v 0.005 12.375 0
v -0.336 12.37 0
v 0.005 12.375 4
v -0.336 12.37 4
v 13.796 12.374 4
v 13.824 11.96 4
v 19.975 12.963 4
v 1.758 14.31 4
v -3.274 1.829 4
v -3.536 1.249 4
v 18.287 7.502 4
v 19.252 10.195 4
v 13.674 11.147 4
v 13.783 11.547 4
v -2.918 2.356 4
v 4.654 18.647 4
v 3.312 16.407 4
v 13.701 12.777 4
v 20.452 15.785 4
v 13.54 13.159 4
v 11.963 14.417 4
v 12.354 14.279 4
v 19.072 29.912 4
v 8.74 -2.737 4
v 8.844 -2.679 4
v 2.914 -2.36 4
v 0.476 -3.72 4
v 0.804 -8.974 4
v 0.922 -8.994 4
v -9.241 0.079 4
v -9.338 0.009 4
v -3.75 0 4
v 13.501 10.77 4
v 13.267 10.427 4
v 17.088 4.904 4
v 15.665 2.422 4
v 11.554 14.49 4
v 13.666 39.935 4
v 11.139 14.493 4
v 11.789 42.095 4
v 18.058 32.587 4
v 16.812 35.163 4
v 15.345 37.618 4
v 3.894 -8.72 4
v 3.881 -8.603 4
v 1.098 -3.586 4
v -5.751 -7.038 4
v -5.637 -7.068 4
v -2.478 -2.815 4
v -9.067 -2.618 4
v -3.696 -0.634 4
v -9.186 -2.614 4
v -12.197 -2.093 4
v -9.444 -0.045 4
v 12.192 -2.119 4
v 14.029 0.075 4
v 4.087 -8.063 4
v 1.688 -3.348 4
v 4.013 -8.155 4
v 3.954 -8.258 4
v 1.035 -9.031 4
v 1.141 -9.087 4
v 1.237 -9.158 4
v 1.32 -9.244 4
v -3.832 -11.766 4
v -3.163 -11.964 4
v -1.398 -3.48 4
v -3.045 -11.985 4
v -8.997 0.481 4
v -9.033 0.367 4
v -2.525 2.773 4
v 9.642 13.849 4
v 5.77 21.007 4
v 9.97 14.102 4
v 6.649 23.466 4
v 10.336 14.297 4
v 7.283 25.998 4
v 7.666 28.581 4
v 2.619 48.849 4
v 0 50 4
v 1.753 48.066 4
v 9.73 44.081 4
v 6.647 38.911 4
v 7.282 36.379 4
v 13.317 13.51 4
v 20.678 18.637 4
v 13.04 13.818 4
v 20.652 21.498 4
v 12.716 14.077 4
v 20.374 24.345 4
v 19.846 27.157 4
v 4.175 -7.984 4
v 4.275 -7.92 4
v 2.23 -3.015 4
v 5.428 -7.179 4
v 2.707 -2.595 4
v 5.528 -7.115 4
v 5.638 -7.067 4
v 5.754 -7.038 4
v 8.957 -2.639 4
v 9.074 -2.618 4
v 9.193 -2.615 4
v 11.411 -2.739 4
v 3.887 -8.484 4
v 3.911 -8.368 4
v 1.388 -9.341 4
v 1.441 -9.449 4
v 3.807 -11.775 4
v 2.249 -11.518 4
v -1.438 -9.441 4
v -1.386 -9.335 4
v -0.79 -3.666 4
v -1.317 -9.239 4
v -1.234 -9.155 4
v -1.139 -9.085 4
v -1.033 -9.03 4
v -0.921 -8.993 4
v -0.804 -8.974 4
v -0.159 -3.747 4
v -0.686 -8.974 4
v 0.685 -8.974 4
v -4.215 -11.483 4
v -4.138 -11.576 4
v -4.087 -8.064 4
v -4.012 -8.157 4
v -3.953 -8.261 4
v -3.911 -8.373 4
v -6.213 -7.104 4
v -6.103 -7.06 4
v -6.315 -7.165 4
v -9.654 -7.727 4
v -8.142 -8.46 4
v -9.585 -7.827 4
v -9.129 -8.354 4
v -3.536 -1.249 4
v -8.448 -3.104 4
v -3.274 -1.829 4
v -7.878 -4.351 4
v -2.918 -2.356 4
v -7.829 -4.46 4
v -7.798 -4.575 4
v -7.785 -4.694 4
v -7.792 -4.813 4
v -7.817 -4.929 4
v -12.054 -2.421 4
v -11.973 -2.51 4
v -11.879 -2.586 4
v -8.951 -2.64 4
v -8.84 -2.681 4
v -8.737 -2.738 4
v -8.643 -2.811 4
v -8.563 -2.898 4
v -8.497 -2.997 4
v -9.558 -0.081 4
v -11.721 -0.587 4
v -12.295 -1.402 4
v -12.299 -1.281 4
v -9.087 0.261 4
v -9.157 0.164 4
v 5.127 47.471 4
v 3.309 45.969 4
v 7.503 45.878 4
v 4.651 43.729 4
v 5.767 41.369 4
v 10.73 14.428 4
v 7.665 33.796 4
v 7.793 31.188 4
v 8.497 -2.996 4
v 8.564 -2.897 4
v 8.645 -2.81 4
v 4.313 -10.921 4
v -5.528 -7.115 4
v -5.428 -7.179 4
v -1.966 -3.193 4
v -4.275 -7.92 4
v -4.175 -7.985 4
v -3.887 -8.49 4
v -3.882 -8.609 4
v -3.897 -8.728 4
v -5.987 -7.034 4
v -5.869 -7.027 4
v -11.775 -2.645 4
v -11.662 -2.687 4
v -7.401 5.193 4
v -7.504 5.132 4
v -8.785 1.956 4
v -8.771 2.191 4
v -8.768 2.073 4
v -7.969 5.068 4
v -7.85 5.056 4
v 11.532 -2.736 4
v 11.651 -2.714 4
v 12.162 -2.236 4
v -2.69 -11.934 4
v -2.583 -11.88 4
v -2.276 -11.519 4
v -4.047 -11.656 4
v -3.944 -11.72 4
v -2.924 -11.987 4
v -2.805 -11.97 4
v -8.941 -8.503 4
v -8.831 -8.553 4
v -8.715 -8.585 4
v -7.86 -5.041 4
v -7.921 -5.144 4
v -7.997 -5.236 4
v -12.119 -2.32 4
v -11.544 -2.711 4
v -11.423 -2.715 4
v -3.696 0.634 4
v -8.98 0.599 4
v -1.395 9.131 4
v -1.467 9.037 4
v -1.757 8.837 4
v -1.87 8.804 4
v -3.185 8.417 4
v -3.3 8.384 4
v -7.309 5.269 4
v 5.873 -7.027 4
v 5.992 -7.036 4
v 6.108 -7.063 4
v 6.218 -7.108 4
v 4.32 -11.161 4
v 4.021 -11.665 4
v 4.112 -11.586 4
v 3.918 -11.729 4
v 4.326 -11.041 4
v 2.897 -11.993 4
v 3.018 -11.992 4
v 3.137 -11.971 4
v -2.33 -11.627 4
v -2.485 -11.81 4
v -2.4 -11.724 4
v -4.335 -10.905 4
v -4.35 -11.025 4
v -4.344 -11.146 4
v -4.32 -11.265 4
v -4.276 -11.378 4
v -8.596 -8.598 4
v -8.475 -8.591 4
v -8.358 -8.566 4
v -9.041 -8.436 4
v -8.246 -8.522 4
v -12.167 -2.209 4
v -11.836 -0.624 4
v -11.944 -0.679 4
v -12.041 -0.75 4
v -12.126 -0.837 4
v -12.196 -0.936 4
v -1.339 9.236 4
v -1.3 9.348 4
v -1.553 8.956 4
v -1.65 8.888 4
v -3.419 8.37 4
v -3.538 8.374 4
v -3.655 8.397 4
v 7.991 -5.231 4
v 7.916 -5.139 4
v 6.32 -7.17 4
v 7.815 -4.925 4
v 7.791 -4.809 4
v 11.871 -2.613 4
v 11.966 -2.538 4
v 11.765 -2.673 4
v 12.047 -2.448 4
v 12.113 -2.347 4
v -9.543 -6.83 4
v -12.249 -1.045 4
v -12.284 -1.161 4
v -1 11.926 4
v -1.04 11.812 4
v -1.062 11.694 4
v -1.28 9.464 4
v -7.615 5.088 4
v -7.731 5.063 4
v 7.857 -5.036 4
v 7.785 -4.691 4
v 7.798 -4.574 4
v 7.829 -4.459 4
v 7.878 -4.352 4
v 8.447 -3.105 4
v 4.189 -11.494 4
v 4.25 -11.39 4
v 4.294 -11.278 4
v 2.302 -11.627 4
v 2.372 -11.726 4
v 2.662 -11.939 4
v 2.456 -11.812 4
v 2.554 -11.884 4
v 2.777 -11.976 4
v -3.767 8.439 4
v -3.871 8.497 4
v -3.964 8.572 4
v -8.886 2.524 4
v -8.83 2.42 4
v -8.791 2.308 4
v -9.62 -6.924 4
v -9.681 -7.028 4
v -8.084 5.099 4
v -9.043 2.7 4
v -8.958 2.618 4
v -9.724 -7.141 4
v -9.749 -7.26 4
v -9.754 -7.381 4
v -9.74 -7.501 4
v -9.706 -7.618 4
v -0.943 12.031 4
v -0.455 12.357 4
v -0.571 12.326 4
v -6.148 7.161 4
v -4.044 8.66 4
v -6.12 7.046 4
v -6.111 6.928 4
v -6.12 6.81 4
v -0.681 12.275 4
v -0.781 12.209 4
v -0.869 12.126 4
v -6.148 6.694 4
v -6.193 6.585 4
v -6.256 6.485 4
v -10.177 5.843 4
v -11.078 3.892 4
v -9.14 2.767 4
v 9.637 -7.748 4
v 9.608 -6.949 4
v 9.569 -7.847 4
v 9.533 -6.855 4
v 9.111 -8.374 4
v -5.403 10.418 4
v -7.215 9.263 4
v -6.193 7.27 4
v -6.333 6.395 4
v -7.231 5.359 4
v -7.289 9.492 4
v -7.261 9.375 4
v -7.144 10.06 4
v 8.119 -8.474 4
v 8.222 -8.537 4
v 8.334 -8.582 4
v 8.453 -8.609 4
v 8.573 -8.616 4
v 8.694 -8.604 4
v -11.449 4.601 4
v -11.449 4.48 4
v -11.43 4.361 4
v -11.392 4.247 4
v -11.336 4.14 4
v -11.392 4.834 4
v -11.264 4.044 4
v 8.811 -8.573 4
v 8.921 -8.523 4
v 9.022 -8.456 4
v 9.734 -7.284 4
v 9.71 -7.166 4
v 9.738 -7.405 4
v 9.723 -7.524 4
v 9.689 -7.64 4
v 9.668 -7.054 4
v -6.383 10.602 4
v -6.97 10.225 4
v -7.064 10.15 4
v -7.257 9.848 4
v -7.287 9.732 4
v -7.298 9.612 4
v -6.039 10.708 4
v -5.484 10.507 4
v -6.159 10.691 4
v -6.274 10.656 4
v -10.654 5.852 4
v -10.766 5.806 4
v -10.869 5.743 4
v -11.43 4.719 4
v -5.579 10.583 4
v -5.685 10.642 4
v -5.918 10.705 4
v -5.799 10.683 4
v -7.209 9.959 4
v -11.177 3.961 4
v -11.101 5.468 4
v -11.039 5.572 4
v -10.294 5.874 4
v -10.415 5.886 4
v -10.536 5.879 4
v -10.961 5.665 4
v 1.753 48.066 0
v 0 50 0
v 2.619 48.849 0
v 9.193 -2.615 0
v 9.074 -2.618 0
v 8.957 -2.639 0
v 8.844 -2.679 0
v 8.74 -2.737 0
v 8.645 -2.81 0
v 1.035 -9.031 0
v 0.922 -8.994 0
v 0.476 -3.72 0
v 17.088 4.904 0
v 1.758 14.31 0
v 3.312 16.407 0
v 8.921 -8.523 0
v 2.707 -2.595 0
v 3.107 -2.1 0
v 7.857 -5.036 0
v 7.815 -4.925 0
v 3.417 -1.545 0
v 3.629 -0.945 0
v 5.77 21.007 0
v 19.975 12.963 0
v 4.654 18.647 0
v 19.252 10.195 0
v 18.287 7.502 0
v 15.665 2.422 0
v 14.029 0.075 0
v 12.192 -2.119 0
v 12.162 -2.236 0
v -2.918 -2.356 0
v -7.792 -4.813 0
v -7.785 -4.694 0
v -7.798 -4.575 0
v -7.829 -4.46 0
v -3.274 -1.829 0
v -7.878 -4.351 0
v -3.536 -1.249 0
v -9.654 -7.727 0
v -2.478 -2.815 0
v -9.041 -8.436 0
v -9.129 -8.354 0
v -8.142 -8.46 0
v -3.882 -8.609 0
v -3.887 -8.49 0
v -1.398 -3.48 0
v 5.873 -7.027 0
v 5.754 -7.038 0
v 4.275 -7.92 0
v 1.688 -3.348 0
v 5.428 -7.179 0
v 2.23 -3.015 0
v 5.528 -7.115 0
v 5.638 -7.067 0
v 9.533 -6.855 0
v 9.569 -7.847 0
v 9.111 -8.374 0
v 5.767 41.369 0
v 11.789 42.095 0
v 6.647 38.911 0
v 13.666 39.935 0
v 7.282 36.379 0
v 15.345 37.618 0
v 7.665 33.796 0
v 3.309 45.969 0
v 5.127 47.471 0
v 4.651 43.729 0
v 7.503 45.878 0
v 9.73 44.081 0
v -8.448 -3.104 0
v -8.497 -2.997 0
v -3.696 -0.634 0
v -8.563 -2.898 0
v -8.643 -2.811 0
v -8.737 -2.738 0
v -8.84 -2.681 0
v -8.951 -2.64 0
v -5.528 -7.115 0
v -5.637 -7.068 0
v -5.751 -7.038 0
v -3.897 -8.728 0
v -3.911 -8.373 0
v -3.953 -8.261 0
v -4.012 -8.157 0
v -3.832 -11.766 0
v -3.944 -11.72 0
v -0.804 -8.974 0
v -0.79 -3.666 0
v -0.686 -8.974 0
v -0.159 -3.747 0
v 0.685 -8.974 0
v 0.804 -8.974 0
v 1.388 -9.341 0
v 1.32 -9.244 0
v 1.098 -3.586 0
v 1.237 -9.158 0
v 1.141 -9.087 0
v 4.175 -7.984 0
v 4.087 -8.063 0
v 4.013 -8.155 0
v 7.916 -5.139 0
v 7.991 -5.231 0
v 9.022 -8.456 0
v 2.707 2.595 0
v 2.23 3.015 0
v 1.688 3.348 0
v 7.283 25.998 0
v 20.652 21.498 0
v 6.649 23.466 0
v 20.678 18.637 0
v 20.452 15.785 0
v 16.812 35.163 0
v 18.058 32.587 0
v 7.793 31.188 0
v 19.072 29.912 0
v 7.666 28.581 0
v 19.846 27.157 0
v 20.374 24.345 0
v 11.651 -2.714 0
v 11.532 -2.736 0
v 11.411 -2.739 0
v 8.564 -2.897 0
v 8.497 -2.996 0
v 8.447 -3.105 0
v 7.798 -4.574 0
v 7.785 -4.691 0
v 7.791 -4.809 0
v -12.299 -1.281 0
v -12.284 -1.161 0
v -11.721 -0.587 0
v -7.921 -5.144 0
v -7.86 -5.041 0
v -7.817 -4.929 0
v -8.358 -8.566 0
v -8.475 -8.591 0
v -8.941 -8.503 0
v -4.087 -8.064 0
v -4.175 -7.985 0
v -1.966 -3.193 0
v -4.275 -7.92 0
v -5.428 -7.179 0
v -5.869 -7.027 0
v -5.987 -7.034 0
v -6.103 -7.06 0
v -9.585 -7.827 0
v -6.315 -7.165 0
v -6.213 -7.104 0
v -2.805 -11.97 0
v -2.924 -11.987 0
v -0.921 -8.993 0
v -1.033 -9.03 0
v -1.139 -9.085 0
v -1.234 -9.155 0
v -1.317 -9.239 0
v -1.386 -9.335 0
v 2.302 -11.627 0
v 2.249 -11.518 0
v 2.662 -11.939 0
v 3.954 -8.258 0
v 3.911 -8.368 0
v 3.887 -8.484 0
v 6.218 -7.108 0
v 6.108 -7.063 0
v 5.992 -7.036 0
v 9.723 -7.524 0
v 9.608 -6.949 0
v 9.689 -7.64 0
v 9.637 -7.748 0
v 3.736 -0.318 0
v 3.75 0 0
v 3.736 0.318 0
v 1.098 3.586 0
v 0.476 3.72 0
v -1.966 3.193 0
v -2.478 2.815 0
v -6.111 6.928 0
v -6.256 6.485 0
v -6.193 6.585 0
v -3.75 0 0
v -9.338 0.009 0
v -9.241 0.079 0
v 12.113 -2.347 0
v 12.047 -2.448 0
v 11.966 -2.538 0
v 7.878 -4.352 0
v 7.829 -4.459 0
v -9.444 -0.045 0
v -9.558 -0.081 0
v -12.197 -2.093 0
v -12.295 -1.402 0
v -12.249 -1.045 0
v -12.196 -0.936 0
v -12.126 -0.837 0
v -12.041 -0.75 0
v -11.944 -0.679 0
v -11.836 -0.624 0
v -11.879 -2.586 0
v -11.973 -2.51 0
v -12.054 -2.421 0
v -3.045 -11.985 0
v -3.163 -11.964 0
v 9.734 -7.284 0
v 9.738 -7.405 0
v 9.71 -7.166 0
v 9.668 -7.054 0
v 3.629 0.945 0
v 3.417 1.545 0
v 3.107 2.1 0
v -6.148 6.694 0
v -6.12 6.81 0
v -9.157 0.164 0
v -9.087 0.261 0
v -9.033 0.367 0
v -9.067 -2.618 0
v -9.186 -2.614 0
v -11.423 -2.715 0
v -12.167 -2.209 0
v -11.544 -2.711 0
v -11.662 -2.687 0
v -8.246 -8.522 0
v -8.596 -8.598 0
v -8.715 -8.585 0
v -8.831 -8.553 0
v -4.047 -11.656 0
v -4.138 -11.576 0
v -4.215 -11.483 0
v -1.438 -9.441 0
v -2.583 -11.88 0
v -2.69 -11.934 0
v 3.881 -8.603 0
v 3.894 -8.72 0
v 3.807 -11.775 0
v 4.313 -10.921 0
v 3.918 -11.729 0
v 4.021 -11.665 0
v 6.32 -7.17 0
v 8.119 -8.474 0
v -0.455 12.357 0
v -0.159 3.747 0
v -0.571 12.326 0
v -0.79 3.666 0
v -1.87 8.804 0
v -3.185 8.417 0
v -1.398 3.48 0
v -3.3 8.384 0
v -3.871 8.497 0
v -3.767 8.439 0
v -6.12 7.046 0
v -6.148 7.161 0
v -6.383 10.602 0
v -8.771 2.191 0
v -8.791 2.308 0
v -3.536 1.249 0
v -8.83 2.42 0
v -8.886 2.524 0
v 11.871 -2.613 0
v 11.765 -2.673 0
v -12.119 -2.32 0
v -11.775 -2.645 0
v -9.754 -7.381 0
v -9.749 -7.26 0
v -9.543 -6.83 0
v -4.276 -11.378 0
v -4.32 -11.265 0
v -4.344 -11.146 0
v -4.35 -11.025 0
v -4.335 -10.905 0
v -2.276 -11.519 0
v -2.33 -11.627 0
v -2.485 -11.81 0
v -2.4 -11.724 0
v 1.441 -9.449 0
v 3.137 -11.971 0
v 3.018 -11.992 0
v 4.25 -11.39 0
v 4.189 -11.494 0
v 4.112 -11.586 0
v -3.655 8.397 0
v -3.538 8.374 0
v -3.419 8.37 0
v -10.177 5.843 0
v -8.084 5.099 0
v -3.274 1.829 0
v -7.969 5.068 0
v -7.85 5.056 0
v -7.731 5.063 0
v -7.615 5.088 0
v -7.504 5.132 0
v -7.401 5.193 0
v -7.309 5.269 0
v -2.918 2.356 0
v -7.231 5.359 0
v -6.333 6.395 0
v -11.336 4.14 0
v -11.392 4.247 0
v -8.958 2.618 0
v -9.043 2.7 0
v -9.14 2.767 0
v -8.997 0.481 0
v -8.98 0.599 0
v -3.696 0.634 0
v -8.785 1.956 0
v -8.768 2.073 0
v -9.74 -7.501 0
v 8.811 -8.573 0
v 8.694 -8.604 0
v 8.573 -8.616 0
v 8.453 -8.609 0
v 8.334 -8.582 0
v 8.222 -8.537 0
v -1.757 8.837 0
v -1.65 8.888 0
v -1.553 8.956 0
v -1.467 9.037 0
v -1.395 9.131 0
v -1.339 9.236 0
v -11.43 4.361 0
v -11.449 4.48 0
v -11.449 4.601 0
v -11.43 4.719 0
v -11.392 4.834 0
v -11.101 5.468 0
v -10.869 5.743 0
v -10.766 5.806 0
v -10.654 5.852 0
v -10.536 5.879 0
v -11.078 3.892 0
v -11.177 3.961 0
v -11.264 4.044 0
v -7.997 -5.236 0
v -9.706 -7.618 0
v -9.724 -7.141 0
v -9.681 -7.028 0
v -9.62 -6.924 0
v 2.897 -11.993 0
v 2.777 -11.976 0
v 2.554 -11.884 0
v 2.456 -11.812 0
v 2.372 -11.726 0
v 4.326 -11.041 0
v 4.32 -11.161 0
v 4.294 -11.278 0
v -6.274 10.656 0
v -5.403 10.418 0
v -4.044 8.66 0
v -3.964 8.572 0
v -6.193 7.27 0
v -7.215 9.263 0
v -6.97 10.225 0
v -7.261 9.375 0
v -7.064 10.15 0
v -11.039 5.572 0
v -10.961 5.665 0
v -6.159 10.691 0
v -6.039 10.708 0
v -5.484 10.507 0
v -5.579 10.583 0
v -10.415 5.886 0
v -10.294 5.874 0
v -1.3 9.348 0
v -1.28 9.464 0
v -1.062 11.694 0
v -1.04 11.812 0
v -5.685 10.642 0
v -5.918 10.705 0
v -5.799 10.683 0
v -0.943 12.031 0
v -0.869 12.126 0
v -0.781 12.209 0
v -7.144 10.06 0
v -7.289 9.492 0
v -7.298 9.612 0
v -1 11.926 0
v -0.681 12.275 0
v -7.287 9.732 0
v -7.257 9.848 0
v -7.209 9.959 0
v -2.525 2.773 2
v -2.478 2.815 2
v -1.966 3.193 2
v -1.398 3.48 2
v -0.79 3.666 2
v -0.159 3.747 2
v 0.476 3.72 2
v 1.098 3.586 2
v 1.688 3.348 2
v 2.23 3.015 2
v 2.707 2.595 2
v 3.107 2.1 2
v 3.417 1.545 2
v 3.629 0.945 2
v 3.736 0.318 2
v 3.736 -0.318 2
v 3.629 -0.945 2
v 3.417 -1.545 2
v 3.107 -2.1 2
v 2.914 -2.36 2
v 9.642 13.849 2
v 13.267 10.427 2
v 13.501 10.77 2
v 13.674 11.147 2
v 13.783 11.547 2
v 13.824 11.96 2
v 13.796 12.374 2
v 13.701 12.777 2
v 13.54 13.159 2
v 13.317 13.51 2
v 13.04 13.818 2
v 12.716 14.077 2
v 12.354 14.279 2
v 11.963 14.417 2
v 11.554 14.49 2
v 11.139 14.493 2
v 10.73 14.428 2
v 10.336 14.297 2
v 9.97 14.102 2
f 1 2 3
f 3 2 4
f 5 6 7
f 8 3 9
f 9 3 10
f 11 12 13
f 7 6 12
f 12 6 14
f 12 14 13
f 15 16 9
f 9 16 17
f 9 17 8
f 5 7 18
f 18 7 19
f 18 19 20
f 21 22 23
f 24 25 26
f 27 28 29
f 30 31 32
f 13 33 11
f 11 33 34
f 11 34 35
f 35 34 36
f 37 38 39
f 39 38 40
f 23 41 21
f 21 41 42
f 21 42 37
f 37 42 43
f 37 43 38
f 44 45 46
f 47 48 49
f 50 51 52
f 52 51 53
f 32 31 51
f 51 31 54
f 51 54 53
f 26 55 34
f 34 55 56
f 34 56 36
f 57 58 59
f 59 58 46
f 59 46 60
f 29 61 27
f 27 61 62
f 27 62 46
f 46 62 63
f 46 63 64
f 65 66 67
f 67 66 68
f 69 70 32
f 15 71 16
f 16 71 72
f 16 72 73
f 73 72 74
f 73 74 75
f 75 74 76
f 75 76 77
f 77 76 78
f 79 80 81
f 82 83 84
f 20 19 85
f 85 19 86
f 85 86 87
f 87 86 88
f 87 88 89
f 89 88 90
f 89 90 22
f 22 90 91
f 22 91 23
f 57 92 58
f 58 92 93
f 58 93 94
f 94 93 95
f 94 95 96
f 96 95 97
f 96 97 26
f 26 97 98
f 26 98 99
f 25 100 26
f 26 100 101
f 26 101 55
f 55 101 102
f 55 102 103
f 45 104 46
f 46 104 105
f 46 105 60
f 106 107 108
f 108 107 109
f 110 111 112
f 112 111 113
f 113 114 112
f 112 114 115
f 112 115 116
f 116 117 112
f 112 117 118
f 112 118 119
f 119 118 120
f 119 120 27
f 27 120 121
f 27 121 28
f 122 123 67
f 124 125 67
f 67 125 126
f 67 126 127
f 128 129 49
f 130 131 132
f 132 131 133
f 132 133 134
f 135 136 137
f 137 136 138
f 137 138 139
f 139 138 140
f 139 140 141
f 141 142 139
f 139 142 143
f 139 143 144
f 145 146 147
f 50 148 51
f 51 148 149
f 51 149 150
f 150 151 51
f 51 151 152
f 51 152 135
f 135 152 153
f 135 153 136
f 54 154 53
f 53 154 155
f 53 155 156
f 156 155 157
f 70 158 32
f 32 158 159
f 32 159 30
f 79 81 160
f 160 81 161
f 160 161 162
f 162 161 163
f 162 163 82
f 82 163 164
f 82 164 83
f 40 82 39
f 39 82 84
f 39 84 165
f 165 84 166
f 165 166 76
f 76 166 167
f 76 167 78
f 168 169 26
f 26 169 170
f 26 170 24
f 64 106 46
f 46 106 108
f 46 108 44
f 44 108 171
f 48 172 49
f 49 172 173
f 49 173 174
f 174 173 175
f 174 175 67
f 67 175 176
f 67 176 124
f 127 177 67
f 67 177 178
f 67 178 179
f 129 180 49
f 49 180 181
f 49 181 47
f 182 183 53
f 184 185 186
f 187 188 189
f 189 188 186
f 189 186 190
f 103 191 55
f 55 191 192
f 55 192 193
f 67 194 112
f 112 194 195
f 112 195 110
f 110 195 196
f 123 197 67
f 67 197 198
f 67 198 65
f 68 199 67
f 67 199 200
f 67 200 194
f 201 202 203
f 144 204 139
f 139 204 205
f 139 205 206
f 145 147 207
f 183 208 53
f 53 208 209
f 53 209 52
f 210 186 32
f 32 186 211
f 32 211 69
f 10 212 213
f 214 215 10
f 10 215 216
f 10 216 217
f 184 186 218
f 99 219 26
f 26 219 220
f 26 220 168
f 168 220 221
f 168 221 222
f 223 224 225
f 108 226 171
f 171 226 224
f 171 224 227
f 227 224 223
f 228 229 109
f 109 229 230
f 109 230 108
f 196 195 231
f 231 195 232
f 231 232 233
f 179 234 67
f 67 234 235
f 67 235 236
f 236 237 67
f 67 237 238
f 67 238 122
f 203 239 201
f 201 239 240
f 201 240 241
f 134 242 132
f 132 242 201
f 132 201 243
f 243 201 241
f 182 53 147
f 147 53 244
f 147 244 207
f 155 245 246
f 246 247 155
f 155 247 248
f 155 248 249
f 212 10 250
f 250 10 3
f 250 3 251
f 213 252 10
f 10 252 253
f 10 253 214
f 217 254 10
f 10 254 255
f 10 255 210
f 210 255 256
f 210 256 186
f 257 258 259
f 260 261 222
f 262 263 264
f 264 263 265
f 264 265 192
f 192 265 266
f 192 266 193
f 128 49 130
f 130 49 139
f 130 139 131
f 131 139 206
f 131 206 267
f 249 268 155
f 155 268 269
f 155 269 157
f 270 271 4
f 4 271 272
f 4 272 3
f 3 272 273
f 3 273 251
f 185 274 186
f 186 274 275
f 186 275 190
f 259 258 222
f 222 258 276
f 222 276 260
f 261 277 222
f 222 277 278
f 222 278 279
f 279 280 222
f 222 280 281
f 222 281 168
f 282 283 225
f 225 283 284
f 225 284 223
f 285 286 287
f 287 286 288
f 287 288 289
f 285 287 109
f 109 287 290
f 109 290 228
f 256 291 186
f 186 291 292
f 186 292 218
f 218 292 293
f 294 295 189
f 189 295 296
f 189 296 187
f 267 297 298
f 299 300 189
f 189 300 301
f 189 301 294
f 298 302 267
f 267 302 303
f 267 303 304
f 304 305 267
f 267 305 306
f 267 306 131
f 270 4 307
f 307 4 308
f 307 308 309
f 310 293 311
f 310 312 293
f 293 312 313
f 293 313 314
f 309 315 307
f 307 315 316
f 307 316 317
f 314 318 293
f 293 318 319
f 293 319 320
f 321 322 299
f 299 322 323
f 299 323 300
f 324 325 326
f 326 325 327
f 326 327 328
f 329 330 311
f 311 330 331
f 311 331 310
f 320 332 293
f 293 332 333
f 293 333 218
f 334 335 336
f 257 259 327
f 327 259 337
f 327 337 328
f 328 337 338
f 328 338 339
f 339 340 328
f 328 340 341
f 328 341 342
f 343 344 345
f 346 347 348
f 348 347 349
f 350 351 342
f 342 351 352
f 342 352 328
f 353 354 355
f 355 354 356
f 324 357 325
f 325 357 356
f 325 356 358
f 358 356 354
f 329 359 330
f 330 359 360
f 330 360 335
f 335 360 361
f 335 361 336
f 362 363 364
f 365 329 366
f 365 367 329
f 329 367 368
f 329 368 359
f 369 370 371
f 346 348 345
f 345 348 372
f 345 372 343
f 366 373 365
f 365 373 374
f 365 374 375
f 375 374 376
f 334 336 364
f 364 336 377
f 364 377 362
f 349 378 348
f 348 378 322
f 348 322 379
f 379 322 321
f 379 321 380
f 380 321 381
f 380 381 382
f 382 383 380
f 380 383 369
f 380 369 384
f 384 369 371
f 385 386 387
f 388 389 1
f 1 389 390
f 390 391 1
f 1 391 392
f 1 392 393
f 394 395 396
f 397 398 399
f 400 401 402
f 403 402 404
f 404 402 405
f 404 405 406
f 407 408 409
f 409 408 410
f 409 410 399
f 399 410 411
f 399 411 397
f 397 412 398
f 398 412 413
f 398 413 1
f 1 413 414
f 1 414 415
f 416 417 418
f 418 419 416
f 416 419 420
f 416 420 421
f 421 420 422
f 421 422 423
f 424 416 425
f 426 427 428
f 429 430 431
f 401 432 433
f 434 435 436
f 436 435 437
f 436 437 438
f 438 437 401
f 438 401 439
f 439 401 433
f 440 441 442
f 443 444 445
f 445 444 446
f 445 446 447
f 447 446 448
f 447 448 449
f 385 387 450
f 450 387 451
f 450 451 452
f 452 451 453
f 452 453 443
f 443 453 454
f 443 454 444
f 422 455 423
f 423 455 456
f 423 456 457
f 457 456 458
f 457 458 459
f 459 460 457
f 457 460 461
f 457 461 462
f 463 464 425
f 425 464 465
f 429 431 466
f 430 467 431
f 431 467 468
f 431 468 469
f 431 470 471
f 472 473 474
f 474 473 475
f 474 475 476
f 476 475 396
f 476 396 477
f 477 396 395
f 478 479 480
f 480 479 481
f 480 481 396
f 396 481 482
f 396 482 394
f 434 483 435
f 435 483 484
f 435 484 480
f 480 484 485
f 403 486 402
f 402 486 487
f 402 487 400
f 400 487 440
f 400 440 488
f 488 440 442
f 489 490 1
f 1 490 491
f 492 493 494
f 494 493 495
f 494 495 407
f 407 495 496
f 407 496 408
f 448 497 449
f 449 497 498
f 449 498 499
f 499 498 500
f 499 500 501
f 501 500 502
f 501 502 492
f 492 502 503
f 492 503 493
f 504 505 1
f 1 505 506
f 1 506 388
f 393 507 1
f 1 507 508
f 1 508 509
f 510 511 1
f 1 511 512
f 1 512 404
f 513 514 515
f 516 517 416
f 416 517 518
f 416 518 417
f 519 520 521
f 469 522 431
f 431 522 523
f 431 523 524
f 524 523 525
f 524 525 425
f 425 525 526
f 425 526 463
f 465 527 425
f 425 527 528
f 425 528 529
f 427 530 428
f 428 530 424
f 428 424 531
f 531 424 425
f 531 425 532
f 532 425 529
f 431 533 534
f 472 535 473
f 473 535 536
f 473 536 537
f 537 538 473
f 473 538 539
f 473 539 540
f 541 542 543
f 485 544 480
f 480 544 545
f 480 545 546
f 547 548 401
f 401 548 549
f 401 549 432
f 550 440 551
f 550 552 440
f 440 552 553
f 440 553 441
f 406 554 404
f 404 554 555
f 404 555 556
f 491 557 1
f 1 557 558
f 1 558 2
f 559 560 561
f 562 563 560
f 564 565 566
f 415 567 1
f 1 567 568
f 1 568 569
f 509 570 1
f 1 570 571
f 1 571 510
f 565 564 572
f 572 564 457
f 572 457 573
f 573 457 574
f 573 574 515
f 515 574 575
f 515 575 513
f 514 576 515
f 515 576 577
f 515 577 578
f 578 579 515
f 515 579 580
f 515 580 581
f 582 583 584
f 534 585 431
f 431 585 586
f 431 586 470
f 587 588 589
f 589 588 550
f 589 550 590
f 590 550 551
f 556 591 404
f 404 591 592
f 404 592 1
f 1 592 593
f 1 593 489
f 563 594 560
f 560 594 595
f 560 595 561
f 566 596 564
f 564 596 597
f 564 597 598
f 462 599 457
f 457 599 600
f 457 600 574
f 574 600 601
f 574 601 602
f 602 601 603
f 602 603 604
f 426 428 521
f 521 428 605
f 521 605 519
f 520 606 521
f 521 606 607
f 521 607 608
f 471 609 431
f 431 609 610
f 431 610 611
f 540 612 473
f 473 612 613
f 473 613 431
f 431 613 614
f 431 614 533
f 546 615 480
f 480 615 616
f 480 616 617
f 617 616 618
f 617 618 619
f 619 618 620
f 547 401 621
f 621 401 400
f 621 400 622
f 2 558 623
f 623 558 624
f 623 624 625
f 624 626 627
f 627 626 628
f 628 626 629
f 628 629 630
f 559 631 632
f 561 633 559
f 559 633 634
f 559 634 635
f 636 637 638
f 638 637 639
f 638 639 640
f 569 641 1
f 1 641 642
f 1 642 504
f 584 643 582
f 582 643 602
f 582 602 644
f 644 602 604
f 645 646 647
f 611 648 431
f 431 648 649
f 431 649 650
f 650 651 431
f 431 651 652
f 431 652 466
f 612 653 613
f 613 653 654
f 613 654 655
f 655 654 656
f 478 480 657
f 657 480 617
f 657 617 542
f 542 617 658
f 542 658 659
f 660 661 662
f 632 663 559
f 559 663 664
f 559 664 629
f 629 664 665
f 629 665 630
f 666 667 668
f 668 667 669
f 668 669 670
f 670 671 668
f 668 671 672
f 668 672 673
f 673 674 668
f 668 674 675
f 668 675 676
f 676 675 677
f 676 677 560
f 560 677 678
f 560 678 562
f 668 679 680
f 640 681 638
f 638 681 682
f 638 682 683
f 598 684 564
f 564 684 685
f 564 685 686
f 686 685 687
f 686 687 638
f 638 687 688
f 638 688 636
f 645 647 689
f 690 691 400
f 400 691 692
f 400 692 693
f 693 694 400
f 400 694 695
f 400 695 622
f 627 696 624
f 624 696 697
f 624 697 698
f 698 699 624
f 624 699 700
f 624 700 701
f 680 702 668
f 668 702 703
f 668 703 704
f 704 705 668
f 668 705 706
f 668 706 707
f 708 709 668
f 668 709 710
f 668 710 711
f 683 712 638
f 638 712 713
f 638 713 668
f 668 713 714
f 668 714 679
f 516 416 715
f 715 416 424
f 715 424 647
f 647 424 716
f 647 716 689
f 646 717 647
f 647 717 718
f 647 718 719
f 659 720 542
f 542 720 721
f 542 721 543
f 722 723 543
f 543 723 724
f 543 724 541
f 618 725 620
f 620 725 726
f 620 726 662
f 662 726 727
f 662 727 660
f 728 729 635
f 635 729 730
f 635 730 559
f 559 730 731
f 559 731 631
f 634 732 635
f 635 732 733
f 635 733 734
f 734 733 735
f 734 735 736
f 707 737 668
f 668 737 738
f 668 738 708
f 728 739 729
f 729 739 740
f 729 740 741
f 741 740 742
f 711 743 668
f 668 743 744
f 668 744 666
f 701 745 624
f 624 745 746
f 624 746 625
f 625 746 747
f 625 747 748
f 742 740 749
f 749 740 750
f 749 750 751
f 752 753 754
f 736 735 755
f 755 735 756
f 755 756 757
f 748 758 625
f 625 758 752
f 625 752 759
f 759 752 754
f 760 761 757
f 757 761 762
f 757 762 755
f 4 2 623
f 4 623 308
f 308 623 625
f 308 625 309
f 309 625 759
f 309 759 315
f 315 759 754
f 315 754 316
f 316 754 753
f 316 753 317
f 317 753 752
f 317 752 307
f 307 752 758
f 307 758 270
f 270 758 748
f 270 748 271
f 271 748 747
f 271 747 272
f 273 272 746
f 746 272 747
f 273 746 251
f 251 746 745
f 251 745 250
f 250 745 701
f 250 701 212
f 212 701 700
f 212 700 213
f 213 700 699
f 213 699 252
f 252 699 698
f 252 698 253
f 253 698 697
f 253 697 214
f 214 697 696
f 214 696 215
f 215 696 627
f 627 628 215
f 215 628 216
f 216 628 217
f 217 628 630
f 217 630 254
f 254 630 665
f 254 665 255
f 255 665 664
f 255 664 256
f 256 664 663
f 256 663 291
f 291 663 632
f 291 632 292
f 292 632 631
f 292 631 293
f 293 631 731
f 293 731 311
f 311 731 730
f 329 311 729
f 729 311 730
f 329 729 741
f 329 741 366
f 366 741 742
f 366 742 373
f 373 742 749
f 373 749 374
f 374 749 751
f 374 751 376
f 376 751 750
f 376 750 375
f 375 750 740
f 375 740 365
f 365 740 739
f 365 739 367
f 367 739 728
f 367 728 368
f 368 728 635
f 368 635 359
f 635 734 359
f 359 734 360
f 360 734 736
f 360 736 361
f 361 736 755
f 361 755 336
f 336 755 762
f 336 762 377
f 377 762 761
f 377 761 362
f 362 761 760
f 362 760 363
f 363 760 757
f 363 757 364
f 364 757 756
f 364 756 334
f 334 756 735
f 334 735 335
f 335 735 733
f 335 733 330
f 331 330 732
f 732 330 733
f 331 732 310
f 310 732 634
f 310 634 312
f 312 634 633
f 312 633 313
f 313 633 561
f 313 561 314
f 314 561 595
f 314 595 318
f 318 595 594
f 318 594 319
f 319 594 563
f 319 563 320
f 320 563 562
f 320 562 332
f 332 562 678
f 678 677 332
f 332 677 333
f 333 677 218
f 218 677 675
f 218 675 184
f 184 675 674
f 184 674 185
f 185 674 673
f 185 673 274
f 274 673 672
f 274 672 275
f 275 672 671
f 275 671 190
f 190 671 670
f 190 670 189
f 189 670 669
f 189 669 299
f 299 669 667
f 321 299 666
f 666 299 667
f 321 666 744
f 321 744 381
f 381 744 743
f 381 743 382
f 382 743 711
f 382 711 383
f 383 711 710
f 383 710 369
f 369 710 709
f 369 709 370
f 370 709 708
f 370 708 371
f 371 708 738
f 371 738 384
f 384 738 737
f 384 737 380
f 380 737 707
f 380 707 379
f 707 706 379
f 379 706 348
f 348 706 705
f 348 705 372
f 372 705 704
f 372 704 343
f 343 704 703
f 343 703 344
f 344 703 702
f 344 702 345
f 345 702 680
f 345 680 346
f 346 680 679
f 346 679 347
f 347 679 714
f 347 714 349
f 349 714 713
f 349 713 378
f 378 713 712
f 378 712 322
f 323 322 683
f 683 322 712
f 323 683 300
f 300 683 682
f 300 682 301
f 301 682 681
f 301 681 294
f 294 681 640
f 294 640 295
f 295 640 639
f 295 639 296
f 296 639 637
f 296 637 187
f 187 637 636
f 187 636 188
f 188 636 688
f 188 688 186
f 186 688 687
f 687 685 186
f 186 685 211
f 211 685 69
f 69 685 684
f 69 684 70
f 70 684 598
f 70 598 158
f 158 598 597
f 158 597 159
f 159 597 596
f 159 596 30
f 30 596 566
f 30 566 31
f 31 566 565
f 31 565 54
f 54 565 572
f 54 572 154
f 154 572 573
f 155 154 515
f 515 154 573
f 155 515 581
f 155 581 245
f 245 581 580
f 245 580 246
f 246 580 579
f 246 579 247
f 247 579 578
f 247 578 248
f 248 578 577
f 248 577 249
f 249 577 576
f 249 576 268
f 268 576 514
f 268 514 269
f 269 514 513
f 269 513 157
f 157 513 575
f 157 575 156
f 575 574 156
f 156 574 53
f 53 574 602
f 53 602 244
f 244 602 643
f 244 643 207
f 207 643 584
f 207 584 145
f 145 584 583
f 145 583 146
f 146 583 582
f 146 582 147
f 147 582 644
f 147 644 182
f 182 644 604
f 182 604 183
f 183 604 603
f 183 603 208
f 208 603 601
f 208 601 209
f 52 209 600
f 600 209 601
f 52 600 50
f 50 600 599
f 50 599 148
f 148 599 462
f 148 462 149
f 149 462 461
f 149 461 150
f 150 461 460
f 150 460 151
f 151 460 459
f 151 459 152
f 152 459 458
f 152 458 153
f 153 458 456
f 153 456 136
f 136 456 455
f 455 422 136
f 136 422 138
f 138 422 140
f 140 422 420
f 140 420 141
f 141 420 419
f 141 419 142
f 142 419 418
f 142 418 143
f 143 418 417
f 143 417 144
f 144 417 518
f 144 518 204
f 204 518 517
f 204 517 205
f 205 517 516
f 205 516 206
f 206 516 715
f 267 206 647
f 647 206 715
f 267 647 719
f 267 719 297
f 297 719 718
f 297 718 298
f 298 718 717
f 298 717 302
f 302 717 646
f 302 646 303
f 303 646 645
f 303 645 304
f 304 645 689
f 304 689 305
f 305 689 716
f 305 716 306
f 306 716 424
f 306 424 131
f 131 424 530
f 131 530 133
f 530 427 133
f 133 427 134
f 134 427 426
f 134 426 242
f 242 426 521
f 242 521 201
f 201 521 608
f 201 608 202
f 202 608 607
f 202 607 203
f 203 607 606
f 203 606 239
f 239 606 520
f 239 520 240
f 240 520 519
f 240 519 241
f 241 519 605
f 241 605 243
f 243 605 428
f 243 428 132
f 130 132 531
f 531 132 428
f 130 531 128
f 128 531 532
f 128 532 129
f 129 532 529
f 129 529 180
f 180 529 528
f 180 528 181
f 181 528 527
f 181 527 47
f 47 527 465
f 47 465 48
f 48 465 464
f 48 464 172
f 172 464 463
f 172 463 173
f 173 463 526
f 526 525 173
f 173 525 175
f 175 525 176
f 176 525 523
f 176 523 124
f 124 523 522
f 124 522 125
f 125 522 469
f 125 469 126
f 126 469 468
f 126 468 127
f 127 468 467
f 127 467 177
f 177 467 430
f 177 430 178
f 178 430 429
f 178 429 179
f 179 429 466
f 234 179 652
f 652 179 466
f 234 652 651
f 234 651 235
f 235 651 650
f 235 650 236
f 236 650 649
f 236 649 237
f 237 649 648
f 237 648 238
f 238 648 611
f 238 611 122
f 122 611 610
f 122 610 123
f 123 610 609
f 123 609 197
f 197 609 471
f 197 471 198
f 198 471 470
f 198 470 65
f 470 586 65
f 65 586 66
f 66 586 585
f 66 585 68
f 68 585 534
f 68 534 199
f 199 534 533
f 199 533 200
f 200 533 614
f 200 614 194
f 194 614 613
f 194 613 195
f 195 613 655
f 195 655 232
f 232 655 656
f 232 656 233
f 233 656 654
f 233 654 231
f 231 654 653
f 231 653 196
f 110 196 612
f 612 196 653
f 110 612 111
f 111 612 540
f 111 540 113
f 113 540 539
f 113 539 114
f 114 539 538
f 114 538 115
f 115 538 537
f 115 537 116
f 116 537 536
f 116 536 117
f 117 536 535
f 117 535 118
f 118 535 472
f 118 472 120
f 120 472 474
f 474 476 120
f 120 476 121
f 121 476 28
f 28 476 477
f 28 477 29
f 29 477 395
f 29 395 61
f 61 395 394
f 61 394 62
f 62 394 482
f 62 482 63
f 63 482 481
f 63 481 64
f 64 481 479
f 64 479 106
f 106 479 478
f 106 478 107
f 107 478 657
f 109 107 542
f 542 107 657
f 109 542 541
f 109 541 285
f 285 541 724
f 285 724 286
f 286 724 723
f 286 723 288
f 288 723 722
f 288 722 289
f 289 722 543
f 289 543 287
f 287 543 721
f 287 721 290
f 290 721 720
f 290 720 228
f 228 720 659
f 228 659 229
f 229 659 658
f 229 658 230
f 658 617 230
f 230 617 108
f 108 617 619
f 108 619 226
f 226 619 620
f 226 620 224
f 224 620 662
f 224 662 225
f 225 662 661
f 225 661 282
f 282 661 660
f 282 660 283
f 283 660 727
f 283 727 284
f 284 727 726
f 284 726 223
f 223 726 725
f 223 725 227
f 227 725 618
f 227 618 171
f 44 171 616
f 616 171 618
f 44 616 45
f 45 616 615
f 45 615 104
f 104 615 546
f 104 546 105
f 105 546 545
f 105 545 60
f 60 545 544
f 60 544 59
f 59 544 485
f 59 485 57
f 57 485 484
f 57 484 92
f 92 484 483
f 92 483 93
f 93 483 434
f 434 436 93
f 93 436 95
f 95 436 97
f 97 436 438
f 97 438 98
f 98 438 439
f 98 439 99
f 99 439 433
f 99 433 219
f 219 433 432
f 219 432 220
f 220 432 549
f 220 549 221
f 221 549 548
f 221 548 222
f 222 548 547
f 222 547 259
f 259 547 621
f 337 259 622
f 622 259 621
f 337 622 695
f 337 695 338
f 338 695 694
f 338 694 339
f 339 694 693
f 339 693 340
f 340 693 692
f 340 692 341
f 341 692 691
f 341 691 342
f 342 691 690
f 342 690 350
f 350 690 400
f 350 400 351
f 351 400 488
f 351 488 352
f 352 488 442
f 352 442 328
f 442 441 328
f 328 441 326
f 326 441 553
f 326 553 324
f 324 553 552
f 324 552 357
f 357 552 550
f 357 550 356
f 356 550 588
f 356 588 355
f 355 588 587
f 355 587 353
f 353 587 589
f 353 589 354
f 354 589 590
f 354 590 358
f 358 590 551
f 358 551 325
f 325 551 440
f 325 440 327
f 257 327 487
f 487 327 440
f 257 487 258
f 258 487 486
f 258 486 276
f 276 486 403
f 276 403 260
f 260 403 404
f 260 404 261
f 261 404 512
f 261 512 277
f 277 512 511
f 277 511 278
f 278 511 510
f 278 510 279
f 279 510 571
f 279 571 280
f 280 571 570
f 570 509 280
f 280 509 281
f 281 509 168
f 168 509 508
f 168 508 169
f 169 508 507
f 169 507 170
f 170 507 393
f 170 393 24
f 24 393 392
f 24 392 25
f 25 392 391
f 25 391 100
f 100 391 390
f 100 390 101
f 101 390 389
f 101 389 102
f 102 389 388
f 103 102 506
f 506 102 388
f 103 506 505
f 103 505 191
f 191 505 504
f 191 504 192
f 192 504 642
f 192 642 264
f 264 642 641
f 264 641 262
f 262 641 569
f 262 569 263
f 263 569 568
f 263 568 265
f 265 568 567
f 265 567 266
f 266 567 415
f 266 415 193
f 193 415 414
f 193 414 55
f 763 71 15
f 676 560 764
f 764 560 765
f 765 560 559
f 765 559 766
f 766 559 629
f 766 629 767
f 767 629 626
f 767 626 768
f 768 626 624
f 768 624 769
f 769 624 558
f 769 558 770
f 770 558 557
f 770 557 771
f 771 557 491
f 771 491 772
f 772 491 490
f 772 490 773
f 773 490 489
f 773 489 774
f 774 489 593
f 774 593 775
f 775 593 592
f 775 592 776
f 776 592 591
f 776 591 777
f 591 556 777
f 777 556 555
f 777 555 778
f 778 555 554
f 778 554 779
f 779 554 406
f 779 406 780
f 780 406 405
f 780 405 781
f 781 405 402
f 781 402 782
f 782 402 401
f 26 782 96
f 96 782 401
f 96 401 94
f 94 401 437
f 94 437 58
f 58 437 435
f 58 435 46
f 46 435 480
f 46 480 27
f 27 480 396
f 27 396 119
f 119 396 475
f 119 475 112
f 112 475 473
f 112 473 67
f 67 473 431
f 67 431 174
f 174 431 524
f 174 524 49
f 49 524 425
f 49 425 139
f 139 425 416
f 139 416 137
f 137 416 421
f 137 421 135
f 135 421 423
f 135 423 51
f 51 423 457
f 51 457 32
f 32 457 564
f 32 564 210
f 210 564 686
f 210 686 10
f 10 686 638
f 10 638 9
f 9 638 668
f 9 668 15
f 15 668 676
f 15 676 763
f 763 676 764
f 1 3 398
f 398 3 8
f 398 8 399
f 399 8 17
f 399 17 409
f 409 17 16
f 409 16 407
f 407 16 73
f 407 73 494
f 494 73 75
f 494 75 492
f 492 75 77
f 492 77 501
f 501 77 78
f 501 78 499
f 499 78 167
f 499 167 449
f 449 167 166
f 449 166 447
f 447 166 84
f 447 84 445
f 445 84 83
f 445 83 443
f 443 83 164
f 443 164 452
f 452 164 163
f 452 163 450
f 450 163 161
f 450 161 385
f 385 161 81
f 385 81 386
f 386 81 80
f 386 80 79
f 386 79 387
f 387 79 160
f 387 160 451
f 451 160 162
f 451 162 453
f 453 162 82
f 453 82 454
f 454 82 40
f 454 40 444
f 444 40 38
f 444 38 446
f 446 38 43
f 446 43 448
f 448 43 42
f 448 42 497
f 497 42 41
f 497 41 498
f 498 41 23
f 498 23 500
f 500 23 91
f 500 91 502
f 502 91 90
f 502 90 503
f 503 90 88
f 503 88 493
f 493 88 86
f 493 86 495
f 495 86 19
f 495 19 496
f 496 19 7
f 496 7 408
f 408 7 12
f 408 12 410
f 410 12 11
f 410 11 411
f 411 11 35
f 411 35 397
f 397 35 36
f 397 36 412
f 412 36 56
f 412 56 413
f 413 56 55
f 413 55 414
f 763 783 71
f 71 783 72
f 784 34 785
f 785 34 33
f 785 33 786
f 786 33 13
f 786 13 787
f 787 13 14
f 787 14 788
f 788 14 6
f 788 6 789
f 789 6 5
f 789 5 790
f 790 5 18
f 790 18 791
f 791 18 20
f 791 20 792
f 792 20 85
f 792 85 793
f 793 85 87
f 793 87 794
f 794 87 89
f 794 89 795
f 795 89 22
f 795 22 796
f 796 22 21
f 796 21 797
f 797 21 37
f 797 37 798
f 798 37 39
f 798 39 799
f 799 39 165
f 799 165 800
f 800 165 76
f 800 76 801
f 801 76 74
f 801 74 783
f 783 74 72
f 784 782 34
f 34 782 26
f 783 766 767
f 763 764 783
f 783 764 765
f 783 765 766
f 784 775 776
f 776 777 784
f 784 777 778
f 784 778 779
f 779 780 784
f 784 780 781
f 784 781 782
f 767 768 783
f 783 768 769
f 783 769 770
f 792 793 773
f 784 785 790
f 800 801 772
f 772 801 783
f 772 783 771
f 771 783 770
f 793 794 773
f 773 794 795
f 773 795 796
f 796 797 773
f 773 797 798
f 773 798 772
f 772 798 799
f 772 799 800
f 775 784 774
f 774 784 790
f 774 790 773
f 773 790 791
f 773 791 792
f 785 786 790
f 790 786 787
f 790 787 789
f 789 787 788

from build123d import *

# Parameters (mm, degrees)
ESBO_O1_R                = 3.75
RESSALTO_EXTRUS_O1_DEPTH = 4
RESSALTO_EXTRUS_O2_START = -4
RESSALTO_EXTRUS_O2_DEPTH = 4
CORTE_EXTRUS_O1_START    = -2
CORTE_EXTRUS_O1_DEPTH    = 2


with BuildPart() as part:
    # Esboço1 → Ressalto-extrusão1 (new body)
    with BuildSketch(Plane.XY):
        with BuildLine():
            Line((5.428931338, 10.411256864), (4.040153116, 8.653603149))
            ThreePointArc((4.040153116, 8.653603149), (3.651813796, 8.395770502), (3.186165661, 8.417146095))
            ThreePointArc((3.186165661, 8.417146095), (2.535977815, 8.635323765), (1.871064211, 8.803358377))
            ThreePointArc((1.871064211, 8.803358377), (1.465141223, 9.040151498), (1.27980553, 9.472002324))
            Line((1.27980553, 9.472002324), (1.087391415, 11.684866251))
            ThreePointArc((1.087391415, 11.684866251), (0.855086446, 12.165243662), (0.362160028, 12.369575749))
            ThreePointArc((0.362160028, 12.369575749), (0.013315066, 12.374869163), (-0.335540479, 12.370326458))
            ThreePointArc((-0.335540479, 12.370326458), (-0.826548297, 12.16926195), (-1.061642754, 11.693608494))
            Line((-1.061642754, 11.693608494), (-1.279697998, 9.464145904))
            ThreePointArc((-1.279697998, 9.464145904), (-1.466994971, 9.037291191), (-1.870279627, 8.803525096))
            ThreePointArc((-1.870279627, 8.803525096), (-2.535208203, 8.635549743), (-3.185415492, 8.41743002))
            ThreePointArc((-3.185415492, 8.41743002), (-3.654919666, 8.397174533), (-4.044310156, 8.660270526))
            Line((-4.044310156, 8.660270526), (-5.402543773, 10.417823198))
            ThreePointArc((-5.402543773, 10.417823198), (-5.857682784, 10.696348844), (-6.382829142, 10.601747792))
            ThreePointArc((-6.382829142, 10.601747792), (-6.679158034, 10.41760107), (-6.970178022, 10.225173956))
            ThreePointArc((-6.970178022, 10.225173956), (-7.274536404, 9.790568861), (-7.215152773, 9.263322051))
            Line((-7.215152773, 9.263322051), (-6.19325404, 7.269889205))
            ThreePointArc((-6.19325404, 7.269889205), (-6.120043199, 6.809535782), (-6.332924348, 6.394847082))
            ThreePointArc((-6.332924348, 6.394847082), (-6.80148353, 5.894049694), (-7.230548283, 5.359027107))
            ThreePointArc((-7.230548283, 5.359027107), (-7.614569385, 5.088153986), (-8.084385943, 5.098964027))
            Line((-8.084385943, 5.098964027), (-10.177209485, 5.843194888))
            ThreePointArc((-10.177209485, 5.843194888), (-10.710679119, 5.831438844), (-11.101315158, 5.46793982))
            ThreePointArc((-11.101315158, 5.46793982), (-11.251045651, 5.152818244), (-11.391833292, 4.833600971))
            ThreePointArc((-11.391833292, 4.833600971), (-11.412910602, 4.303439334), (-11.077902766, 3.891996308))
            Line((-11.077902766, 3.891996308), (-9.140495683, 2.76749405))
            ThreePointArc((-9.140495683, 2.76749405), (-8.830020954, 2.419800875), (-8.784910335, 1.955850303))
            ThreePointArc((-8.784910335, 1.955850303), (-8.908335893, 1.281230512), (-8.980033083, 0.599170952))
            ThreePointArc((-8.980033083, 0.599170952), (-9.156647127, 0.163680499), (-9.557726315, -0.081227523))
            Line((-9.557726315, -0.081227523), (-11.720683094, -0.586606513))
            ThreePointArc((-11.720683094, -0.586606513), (-12.163110512, -0.884911785), (-12.295212049, -1.401900411))
            ThreePointArc((-12.295212049, -1.401900411), (-12.25080577, -1.747947966), (-12.196661982, -2.09260617))
            ThreePointArc((-12.196661982, -2.09260617), (-11.927766323, -2.550001774), (-11.423496904, -2.715010763))
            Line((-11.423496904, -2.715010763), (-9.185694531, -2.613560912))
            ThreePointArc((-9.185694531, -2.613560912), (-8.736529446, -2.738203711), (-8.447749362, -3.104115127))
            ThreePointArc((-8.447749362, -3.104115127), (-8.186854553, -3.738370305), (-7.878420829, -4.350917747))
            ThreePointArc((-7.878420829, -4.350917747), (-7.791554103, -4.812760389), (-7.996556113, -5.235629909))
            Line((-7.996556113, -5.235629909), (-9.542922635, -6.83016449))
            ThreePointArc((-9.542922635, -6.83016449), (-9.753840257, -7.320309176), (-9.585465989, -7.826647167))
            ThreePointArc((-9.585465989, -7.826647167), (-9.361021617, -8.093753047), (-9.129136671, -8.354425638))
            ThreePointArc((-9.129136671, -8.354425638), (-8.655640515, -8.593835336), (-8.142211489, -8.4600211))
            Line((-8.142211489, -8.4600211), (-6.314500268, -7.16482875))
            ThreePointArc((-6.314500268, -7.16482875), (-5.869251568, -7.026847967), (-5.428487655, -7.178545938))
            ThreePointArc((-5.428487655, -7.178545938), (-4.866104738, -7.571064963), (-4.275465628, -7.919620803))
            ThreePointArc((-4.275465628, -7.919620803), (-3.952697704, -8.26118386), (-3.896535847, -8.727756791))
            Line((-3.896535847, -8.727756791), (-4.335351667, -10.905193502))
            ThreePointArc((-4.335351667, -10.905193502), (-4.247794638, -11.431560125), (-3.832402205, -11.766488747))
            ThreePointArc((-3.832402205, -11.766488747), (-3.499179242, -11.869848724), (-3.16317497, -11.963773995))
            ThreePointArc((-3.16317497, -11.963773995), (-2.635410001, -11.909186901), (-2.275831457, -11.519034514))
            Line((-2.275831457, -11.519034514), (-1.438496786, -9.441314085))
            ThreePointArc((-1.438496786, -9.441314085), (-1.138527788, -9.084517642), (-0.685719474, -8.973839134))
            ThreePointArc((-0.685719474, -8.973839134), (-0.000401051, -8.999999991), (0.684919701, -8.973900211))
            ThreePointArc((0.684919701, -8.973900211), (1.141112287, -9.086739826), (1.440607019, -9.44888256))
            Line((1.440607019, -9.44888256), (2.248662823, -11.517900629))
            ThreePointArc((2.248662823, -11.517900629), (2.606895765, -11.913371507), (3.137422201, -11.970553289))
            ThreePointArc((3.137422201, -11.970553289), (3.473627818, -11.877351299), (3.807072434, -11.774708641))
            ThreePointArc((3.807072434, -11.774708641), (4.221544568, -11.44345577), (4.313108983, -10.920835859))
            Line((4.313108983, -10.920835859), (3.894219261, -8.720248907))
            ThreePointArc((3.894219261, -8.720248907), (3.953670521, -8.257917155), (4.274759795, -7.920001811))
            ThreePointArc((4.274759795, -7.920001811), (4.865429967, -7.571498612), (5.427847864, -7.179029709))
            ThreePointArc((5.427847864, -7.179029709), (5.87262719, -7.0273201), (6.320367336, -7.170054878))
            Line((6.320367336, -7.170054878), (8.118742756, -8.473755688))
            ThreePointArc((8.118742756, -8.473755688), (8.633915182, -8.612771611), (9.111137226, -8.374051741))
            ThreePointArc((9.111137226, -8.374051741), (9.343582589, -8.113878758), (9.56860124, -7.847256489))
            ThreePointArc((9.56860124, -7.847256489), (9.738188564, -7.344508289), (9.532667795, -6.855348982))
            Line((9.532667795, -6.855348982), (7.990548209, -5.230566315))
            ThreePointArc((7.990548209, -5.230566315), (7.790606374, -4.809486318), (7.878033033, -4.351619874))
            ThreePointArc((7.878033033, -4.351619874), (8.186521347, -3.739099922), (8.447472682, -3.104867999))
            ThreePointArc((8.447472682, -3.104867999), (8.739624454, -2.736775896), (9.19345568, -2.614785434))
            Line((9.19345568, -2.614785434), (11.411179228, -2.739253189))
            ThreePointArc((11.411179228, -2.739253189), (11.919727533, -2.577677583), (12.192130558, -2.118847933))
            ThreePointArc((12.192130558, -2.118847933), (12.247015907, -1.774307042), (12.292166761, -1.428355848))
            ThreePointArc((12.292166761, -1.428355848), (12.163026498, -0.913731319), (11.725671937, -0.61333724))
            Line((11.725671937, -0.61333724), (9.549934558, -0.080215876))
            ThreePointArc((9.549934558, -0.080215876), (9.15407975, 0.165922443), (8.980086447, 0.598370627))
            ThreePointArc((8.980086447, 0.598370627), (8.908450044, 1.280436574), (8.78508461, 1.955067363))
            ThreePointArc((8.78508461, 1.955067363), (8.831852706, 2.422675318), (9.147686805, 2.77065991))
            Line((9.147686805, 2.77065991), (11.080646922, 3.864942843))
            ThreePointArc((11.080646922, 3.864942843), (11.421110614, 4.275810864), (11.402208583, 4.809075122))
            ThreePointArc((11.402208583, 4.809075122), (11.262108208, 5.128594624), (11.113056187, 5.444037682))
            ThreePointArc((11.113056187, 5.444037682), (10.726189458, 5.807148888), (10.195858089, 5.823404741))
            Line((10.195858089, 5.823404741), (8.077284162, 5.095602537))
            ThreePointArc((8.077284162, 5.095602537), (7.611197484, 5.088652), (7.231025864, 5.358382681))
            ThreePointArc((7.231025864, 5.358382681), (6.802008795, 5.893443506), (6.333494247, 6.394282651))
            ThreePointArc((6.333494247, 6.394282651), (6.120030126, 6.812944237), (6.197592003, 7.27644031))
            Line((6.197592003, 7.27644031), (7.232087511, 9.242046831))
            ThreePointArc((7.232087511, 9.242046831), (7.296371772, 9.771759573), (6.992165948, 10.210150805))
            ThreePointArc((6.992165948, 10.210150805), (6.701560727, 10.403203734), (6.405628795, 10.587987714))
            ThreePointArc((6.405628795, 10.587987714), (5.883863054, 10.684300355), (5.428931338, 10.411256864))
        make_face()
        Circle(ESBO_O1_R, mode=Mode.SUBTRACT)
    extrude(amount=RESSALTO_EXTRUS_O1_DEPTH)

    # Esboço6 → Ressalto-extrusão2 (add)
    with BuildSketch(Plane.XY.offset(4).offset(RESSALTO_EXTRUS_O2_START)):
        with BuildLine():
            Line((0, 12.37), (0, 9))
            ThreePointArc((0, 9), (6.887269468, 5.79357569), (8.867092658, -1.540995716))
            Line((8.867092658, -1.540995716), (12.192130558, -2.118847933))
            ThreePointArc((12.192130558, -2.118847933), (19.845997755, 27.157089417), (0, 50))
            ThreePointArc((0, 50), (7.793428176, 31.185), (0, 12.37))
        make_face()
    extrude(amount=RESSALTO_EXTRUS_O2_DEPTH)

    # Esboço7 → Corte-extrusão1 (cut)
    with BuildSketch(Plane.XY.offset(4).offset(CORTE_EXTRUS_O1_START)):
        with BuildLine():
            Line((-2.524504061, 2.772972998), (9.641514463, 13.848869949))
            ThreePointArc((9.641514463, 13.848869949), (13.040353105, 13.81843663), (13.267495019, 10.427059792))
            Line((13.267495019, 10.427059792), (2.914466774, -2.359742237))
            ThreePointArc((2.914466774, -2.359742237), (-2.573753902, -2.727323019), (-2.524504061, 2.772972998))
        make_face()
    extrude(amount=CORTE_EXTRUS_O1_DEPTH, mode=Mode.SUBTRACT)


solid = part.part
